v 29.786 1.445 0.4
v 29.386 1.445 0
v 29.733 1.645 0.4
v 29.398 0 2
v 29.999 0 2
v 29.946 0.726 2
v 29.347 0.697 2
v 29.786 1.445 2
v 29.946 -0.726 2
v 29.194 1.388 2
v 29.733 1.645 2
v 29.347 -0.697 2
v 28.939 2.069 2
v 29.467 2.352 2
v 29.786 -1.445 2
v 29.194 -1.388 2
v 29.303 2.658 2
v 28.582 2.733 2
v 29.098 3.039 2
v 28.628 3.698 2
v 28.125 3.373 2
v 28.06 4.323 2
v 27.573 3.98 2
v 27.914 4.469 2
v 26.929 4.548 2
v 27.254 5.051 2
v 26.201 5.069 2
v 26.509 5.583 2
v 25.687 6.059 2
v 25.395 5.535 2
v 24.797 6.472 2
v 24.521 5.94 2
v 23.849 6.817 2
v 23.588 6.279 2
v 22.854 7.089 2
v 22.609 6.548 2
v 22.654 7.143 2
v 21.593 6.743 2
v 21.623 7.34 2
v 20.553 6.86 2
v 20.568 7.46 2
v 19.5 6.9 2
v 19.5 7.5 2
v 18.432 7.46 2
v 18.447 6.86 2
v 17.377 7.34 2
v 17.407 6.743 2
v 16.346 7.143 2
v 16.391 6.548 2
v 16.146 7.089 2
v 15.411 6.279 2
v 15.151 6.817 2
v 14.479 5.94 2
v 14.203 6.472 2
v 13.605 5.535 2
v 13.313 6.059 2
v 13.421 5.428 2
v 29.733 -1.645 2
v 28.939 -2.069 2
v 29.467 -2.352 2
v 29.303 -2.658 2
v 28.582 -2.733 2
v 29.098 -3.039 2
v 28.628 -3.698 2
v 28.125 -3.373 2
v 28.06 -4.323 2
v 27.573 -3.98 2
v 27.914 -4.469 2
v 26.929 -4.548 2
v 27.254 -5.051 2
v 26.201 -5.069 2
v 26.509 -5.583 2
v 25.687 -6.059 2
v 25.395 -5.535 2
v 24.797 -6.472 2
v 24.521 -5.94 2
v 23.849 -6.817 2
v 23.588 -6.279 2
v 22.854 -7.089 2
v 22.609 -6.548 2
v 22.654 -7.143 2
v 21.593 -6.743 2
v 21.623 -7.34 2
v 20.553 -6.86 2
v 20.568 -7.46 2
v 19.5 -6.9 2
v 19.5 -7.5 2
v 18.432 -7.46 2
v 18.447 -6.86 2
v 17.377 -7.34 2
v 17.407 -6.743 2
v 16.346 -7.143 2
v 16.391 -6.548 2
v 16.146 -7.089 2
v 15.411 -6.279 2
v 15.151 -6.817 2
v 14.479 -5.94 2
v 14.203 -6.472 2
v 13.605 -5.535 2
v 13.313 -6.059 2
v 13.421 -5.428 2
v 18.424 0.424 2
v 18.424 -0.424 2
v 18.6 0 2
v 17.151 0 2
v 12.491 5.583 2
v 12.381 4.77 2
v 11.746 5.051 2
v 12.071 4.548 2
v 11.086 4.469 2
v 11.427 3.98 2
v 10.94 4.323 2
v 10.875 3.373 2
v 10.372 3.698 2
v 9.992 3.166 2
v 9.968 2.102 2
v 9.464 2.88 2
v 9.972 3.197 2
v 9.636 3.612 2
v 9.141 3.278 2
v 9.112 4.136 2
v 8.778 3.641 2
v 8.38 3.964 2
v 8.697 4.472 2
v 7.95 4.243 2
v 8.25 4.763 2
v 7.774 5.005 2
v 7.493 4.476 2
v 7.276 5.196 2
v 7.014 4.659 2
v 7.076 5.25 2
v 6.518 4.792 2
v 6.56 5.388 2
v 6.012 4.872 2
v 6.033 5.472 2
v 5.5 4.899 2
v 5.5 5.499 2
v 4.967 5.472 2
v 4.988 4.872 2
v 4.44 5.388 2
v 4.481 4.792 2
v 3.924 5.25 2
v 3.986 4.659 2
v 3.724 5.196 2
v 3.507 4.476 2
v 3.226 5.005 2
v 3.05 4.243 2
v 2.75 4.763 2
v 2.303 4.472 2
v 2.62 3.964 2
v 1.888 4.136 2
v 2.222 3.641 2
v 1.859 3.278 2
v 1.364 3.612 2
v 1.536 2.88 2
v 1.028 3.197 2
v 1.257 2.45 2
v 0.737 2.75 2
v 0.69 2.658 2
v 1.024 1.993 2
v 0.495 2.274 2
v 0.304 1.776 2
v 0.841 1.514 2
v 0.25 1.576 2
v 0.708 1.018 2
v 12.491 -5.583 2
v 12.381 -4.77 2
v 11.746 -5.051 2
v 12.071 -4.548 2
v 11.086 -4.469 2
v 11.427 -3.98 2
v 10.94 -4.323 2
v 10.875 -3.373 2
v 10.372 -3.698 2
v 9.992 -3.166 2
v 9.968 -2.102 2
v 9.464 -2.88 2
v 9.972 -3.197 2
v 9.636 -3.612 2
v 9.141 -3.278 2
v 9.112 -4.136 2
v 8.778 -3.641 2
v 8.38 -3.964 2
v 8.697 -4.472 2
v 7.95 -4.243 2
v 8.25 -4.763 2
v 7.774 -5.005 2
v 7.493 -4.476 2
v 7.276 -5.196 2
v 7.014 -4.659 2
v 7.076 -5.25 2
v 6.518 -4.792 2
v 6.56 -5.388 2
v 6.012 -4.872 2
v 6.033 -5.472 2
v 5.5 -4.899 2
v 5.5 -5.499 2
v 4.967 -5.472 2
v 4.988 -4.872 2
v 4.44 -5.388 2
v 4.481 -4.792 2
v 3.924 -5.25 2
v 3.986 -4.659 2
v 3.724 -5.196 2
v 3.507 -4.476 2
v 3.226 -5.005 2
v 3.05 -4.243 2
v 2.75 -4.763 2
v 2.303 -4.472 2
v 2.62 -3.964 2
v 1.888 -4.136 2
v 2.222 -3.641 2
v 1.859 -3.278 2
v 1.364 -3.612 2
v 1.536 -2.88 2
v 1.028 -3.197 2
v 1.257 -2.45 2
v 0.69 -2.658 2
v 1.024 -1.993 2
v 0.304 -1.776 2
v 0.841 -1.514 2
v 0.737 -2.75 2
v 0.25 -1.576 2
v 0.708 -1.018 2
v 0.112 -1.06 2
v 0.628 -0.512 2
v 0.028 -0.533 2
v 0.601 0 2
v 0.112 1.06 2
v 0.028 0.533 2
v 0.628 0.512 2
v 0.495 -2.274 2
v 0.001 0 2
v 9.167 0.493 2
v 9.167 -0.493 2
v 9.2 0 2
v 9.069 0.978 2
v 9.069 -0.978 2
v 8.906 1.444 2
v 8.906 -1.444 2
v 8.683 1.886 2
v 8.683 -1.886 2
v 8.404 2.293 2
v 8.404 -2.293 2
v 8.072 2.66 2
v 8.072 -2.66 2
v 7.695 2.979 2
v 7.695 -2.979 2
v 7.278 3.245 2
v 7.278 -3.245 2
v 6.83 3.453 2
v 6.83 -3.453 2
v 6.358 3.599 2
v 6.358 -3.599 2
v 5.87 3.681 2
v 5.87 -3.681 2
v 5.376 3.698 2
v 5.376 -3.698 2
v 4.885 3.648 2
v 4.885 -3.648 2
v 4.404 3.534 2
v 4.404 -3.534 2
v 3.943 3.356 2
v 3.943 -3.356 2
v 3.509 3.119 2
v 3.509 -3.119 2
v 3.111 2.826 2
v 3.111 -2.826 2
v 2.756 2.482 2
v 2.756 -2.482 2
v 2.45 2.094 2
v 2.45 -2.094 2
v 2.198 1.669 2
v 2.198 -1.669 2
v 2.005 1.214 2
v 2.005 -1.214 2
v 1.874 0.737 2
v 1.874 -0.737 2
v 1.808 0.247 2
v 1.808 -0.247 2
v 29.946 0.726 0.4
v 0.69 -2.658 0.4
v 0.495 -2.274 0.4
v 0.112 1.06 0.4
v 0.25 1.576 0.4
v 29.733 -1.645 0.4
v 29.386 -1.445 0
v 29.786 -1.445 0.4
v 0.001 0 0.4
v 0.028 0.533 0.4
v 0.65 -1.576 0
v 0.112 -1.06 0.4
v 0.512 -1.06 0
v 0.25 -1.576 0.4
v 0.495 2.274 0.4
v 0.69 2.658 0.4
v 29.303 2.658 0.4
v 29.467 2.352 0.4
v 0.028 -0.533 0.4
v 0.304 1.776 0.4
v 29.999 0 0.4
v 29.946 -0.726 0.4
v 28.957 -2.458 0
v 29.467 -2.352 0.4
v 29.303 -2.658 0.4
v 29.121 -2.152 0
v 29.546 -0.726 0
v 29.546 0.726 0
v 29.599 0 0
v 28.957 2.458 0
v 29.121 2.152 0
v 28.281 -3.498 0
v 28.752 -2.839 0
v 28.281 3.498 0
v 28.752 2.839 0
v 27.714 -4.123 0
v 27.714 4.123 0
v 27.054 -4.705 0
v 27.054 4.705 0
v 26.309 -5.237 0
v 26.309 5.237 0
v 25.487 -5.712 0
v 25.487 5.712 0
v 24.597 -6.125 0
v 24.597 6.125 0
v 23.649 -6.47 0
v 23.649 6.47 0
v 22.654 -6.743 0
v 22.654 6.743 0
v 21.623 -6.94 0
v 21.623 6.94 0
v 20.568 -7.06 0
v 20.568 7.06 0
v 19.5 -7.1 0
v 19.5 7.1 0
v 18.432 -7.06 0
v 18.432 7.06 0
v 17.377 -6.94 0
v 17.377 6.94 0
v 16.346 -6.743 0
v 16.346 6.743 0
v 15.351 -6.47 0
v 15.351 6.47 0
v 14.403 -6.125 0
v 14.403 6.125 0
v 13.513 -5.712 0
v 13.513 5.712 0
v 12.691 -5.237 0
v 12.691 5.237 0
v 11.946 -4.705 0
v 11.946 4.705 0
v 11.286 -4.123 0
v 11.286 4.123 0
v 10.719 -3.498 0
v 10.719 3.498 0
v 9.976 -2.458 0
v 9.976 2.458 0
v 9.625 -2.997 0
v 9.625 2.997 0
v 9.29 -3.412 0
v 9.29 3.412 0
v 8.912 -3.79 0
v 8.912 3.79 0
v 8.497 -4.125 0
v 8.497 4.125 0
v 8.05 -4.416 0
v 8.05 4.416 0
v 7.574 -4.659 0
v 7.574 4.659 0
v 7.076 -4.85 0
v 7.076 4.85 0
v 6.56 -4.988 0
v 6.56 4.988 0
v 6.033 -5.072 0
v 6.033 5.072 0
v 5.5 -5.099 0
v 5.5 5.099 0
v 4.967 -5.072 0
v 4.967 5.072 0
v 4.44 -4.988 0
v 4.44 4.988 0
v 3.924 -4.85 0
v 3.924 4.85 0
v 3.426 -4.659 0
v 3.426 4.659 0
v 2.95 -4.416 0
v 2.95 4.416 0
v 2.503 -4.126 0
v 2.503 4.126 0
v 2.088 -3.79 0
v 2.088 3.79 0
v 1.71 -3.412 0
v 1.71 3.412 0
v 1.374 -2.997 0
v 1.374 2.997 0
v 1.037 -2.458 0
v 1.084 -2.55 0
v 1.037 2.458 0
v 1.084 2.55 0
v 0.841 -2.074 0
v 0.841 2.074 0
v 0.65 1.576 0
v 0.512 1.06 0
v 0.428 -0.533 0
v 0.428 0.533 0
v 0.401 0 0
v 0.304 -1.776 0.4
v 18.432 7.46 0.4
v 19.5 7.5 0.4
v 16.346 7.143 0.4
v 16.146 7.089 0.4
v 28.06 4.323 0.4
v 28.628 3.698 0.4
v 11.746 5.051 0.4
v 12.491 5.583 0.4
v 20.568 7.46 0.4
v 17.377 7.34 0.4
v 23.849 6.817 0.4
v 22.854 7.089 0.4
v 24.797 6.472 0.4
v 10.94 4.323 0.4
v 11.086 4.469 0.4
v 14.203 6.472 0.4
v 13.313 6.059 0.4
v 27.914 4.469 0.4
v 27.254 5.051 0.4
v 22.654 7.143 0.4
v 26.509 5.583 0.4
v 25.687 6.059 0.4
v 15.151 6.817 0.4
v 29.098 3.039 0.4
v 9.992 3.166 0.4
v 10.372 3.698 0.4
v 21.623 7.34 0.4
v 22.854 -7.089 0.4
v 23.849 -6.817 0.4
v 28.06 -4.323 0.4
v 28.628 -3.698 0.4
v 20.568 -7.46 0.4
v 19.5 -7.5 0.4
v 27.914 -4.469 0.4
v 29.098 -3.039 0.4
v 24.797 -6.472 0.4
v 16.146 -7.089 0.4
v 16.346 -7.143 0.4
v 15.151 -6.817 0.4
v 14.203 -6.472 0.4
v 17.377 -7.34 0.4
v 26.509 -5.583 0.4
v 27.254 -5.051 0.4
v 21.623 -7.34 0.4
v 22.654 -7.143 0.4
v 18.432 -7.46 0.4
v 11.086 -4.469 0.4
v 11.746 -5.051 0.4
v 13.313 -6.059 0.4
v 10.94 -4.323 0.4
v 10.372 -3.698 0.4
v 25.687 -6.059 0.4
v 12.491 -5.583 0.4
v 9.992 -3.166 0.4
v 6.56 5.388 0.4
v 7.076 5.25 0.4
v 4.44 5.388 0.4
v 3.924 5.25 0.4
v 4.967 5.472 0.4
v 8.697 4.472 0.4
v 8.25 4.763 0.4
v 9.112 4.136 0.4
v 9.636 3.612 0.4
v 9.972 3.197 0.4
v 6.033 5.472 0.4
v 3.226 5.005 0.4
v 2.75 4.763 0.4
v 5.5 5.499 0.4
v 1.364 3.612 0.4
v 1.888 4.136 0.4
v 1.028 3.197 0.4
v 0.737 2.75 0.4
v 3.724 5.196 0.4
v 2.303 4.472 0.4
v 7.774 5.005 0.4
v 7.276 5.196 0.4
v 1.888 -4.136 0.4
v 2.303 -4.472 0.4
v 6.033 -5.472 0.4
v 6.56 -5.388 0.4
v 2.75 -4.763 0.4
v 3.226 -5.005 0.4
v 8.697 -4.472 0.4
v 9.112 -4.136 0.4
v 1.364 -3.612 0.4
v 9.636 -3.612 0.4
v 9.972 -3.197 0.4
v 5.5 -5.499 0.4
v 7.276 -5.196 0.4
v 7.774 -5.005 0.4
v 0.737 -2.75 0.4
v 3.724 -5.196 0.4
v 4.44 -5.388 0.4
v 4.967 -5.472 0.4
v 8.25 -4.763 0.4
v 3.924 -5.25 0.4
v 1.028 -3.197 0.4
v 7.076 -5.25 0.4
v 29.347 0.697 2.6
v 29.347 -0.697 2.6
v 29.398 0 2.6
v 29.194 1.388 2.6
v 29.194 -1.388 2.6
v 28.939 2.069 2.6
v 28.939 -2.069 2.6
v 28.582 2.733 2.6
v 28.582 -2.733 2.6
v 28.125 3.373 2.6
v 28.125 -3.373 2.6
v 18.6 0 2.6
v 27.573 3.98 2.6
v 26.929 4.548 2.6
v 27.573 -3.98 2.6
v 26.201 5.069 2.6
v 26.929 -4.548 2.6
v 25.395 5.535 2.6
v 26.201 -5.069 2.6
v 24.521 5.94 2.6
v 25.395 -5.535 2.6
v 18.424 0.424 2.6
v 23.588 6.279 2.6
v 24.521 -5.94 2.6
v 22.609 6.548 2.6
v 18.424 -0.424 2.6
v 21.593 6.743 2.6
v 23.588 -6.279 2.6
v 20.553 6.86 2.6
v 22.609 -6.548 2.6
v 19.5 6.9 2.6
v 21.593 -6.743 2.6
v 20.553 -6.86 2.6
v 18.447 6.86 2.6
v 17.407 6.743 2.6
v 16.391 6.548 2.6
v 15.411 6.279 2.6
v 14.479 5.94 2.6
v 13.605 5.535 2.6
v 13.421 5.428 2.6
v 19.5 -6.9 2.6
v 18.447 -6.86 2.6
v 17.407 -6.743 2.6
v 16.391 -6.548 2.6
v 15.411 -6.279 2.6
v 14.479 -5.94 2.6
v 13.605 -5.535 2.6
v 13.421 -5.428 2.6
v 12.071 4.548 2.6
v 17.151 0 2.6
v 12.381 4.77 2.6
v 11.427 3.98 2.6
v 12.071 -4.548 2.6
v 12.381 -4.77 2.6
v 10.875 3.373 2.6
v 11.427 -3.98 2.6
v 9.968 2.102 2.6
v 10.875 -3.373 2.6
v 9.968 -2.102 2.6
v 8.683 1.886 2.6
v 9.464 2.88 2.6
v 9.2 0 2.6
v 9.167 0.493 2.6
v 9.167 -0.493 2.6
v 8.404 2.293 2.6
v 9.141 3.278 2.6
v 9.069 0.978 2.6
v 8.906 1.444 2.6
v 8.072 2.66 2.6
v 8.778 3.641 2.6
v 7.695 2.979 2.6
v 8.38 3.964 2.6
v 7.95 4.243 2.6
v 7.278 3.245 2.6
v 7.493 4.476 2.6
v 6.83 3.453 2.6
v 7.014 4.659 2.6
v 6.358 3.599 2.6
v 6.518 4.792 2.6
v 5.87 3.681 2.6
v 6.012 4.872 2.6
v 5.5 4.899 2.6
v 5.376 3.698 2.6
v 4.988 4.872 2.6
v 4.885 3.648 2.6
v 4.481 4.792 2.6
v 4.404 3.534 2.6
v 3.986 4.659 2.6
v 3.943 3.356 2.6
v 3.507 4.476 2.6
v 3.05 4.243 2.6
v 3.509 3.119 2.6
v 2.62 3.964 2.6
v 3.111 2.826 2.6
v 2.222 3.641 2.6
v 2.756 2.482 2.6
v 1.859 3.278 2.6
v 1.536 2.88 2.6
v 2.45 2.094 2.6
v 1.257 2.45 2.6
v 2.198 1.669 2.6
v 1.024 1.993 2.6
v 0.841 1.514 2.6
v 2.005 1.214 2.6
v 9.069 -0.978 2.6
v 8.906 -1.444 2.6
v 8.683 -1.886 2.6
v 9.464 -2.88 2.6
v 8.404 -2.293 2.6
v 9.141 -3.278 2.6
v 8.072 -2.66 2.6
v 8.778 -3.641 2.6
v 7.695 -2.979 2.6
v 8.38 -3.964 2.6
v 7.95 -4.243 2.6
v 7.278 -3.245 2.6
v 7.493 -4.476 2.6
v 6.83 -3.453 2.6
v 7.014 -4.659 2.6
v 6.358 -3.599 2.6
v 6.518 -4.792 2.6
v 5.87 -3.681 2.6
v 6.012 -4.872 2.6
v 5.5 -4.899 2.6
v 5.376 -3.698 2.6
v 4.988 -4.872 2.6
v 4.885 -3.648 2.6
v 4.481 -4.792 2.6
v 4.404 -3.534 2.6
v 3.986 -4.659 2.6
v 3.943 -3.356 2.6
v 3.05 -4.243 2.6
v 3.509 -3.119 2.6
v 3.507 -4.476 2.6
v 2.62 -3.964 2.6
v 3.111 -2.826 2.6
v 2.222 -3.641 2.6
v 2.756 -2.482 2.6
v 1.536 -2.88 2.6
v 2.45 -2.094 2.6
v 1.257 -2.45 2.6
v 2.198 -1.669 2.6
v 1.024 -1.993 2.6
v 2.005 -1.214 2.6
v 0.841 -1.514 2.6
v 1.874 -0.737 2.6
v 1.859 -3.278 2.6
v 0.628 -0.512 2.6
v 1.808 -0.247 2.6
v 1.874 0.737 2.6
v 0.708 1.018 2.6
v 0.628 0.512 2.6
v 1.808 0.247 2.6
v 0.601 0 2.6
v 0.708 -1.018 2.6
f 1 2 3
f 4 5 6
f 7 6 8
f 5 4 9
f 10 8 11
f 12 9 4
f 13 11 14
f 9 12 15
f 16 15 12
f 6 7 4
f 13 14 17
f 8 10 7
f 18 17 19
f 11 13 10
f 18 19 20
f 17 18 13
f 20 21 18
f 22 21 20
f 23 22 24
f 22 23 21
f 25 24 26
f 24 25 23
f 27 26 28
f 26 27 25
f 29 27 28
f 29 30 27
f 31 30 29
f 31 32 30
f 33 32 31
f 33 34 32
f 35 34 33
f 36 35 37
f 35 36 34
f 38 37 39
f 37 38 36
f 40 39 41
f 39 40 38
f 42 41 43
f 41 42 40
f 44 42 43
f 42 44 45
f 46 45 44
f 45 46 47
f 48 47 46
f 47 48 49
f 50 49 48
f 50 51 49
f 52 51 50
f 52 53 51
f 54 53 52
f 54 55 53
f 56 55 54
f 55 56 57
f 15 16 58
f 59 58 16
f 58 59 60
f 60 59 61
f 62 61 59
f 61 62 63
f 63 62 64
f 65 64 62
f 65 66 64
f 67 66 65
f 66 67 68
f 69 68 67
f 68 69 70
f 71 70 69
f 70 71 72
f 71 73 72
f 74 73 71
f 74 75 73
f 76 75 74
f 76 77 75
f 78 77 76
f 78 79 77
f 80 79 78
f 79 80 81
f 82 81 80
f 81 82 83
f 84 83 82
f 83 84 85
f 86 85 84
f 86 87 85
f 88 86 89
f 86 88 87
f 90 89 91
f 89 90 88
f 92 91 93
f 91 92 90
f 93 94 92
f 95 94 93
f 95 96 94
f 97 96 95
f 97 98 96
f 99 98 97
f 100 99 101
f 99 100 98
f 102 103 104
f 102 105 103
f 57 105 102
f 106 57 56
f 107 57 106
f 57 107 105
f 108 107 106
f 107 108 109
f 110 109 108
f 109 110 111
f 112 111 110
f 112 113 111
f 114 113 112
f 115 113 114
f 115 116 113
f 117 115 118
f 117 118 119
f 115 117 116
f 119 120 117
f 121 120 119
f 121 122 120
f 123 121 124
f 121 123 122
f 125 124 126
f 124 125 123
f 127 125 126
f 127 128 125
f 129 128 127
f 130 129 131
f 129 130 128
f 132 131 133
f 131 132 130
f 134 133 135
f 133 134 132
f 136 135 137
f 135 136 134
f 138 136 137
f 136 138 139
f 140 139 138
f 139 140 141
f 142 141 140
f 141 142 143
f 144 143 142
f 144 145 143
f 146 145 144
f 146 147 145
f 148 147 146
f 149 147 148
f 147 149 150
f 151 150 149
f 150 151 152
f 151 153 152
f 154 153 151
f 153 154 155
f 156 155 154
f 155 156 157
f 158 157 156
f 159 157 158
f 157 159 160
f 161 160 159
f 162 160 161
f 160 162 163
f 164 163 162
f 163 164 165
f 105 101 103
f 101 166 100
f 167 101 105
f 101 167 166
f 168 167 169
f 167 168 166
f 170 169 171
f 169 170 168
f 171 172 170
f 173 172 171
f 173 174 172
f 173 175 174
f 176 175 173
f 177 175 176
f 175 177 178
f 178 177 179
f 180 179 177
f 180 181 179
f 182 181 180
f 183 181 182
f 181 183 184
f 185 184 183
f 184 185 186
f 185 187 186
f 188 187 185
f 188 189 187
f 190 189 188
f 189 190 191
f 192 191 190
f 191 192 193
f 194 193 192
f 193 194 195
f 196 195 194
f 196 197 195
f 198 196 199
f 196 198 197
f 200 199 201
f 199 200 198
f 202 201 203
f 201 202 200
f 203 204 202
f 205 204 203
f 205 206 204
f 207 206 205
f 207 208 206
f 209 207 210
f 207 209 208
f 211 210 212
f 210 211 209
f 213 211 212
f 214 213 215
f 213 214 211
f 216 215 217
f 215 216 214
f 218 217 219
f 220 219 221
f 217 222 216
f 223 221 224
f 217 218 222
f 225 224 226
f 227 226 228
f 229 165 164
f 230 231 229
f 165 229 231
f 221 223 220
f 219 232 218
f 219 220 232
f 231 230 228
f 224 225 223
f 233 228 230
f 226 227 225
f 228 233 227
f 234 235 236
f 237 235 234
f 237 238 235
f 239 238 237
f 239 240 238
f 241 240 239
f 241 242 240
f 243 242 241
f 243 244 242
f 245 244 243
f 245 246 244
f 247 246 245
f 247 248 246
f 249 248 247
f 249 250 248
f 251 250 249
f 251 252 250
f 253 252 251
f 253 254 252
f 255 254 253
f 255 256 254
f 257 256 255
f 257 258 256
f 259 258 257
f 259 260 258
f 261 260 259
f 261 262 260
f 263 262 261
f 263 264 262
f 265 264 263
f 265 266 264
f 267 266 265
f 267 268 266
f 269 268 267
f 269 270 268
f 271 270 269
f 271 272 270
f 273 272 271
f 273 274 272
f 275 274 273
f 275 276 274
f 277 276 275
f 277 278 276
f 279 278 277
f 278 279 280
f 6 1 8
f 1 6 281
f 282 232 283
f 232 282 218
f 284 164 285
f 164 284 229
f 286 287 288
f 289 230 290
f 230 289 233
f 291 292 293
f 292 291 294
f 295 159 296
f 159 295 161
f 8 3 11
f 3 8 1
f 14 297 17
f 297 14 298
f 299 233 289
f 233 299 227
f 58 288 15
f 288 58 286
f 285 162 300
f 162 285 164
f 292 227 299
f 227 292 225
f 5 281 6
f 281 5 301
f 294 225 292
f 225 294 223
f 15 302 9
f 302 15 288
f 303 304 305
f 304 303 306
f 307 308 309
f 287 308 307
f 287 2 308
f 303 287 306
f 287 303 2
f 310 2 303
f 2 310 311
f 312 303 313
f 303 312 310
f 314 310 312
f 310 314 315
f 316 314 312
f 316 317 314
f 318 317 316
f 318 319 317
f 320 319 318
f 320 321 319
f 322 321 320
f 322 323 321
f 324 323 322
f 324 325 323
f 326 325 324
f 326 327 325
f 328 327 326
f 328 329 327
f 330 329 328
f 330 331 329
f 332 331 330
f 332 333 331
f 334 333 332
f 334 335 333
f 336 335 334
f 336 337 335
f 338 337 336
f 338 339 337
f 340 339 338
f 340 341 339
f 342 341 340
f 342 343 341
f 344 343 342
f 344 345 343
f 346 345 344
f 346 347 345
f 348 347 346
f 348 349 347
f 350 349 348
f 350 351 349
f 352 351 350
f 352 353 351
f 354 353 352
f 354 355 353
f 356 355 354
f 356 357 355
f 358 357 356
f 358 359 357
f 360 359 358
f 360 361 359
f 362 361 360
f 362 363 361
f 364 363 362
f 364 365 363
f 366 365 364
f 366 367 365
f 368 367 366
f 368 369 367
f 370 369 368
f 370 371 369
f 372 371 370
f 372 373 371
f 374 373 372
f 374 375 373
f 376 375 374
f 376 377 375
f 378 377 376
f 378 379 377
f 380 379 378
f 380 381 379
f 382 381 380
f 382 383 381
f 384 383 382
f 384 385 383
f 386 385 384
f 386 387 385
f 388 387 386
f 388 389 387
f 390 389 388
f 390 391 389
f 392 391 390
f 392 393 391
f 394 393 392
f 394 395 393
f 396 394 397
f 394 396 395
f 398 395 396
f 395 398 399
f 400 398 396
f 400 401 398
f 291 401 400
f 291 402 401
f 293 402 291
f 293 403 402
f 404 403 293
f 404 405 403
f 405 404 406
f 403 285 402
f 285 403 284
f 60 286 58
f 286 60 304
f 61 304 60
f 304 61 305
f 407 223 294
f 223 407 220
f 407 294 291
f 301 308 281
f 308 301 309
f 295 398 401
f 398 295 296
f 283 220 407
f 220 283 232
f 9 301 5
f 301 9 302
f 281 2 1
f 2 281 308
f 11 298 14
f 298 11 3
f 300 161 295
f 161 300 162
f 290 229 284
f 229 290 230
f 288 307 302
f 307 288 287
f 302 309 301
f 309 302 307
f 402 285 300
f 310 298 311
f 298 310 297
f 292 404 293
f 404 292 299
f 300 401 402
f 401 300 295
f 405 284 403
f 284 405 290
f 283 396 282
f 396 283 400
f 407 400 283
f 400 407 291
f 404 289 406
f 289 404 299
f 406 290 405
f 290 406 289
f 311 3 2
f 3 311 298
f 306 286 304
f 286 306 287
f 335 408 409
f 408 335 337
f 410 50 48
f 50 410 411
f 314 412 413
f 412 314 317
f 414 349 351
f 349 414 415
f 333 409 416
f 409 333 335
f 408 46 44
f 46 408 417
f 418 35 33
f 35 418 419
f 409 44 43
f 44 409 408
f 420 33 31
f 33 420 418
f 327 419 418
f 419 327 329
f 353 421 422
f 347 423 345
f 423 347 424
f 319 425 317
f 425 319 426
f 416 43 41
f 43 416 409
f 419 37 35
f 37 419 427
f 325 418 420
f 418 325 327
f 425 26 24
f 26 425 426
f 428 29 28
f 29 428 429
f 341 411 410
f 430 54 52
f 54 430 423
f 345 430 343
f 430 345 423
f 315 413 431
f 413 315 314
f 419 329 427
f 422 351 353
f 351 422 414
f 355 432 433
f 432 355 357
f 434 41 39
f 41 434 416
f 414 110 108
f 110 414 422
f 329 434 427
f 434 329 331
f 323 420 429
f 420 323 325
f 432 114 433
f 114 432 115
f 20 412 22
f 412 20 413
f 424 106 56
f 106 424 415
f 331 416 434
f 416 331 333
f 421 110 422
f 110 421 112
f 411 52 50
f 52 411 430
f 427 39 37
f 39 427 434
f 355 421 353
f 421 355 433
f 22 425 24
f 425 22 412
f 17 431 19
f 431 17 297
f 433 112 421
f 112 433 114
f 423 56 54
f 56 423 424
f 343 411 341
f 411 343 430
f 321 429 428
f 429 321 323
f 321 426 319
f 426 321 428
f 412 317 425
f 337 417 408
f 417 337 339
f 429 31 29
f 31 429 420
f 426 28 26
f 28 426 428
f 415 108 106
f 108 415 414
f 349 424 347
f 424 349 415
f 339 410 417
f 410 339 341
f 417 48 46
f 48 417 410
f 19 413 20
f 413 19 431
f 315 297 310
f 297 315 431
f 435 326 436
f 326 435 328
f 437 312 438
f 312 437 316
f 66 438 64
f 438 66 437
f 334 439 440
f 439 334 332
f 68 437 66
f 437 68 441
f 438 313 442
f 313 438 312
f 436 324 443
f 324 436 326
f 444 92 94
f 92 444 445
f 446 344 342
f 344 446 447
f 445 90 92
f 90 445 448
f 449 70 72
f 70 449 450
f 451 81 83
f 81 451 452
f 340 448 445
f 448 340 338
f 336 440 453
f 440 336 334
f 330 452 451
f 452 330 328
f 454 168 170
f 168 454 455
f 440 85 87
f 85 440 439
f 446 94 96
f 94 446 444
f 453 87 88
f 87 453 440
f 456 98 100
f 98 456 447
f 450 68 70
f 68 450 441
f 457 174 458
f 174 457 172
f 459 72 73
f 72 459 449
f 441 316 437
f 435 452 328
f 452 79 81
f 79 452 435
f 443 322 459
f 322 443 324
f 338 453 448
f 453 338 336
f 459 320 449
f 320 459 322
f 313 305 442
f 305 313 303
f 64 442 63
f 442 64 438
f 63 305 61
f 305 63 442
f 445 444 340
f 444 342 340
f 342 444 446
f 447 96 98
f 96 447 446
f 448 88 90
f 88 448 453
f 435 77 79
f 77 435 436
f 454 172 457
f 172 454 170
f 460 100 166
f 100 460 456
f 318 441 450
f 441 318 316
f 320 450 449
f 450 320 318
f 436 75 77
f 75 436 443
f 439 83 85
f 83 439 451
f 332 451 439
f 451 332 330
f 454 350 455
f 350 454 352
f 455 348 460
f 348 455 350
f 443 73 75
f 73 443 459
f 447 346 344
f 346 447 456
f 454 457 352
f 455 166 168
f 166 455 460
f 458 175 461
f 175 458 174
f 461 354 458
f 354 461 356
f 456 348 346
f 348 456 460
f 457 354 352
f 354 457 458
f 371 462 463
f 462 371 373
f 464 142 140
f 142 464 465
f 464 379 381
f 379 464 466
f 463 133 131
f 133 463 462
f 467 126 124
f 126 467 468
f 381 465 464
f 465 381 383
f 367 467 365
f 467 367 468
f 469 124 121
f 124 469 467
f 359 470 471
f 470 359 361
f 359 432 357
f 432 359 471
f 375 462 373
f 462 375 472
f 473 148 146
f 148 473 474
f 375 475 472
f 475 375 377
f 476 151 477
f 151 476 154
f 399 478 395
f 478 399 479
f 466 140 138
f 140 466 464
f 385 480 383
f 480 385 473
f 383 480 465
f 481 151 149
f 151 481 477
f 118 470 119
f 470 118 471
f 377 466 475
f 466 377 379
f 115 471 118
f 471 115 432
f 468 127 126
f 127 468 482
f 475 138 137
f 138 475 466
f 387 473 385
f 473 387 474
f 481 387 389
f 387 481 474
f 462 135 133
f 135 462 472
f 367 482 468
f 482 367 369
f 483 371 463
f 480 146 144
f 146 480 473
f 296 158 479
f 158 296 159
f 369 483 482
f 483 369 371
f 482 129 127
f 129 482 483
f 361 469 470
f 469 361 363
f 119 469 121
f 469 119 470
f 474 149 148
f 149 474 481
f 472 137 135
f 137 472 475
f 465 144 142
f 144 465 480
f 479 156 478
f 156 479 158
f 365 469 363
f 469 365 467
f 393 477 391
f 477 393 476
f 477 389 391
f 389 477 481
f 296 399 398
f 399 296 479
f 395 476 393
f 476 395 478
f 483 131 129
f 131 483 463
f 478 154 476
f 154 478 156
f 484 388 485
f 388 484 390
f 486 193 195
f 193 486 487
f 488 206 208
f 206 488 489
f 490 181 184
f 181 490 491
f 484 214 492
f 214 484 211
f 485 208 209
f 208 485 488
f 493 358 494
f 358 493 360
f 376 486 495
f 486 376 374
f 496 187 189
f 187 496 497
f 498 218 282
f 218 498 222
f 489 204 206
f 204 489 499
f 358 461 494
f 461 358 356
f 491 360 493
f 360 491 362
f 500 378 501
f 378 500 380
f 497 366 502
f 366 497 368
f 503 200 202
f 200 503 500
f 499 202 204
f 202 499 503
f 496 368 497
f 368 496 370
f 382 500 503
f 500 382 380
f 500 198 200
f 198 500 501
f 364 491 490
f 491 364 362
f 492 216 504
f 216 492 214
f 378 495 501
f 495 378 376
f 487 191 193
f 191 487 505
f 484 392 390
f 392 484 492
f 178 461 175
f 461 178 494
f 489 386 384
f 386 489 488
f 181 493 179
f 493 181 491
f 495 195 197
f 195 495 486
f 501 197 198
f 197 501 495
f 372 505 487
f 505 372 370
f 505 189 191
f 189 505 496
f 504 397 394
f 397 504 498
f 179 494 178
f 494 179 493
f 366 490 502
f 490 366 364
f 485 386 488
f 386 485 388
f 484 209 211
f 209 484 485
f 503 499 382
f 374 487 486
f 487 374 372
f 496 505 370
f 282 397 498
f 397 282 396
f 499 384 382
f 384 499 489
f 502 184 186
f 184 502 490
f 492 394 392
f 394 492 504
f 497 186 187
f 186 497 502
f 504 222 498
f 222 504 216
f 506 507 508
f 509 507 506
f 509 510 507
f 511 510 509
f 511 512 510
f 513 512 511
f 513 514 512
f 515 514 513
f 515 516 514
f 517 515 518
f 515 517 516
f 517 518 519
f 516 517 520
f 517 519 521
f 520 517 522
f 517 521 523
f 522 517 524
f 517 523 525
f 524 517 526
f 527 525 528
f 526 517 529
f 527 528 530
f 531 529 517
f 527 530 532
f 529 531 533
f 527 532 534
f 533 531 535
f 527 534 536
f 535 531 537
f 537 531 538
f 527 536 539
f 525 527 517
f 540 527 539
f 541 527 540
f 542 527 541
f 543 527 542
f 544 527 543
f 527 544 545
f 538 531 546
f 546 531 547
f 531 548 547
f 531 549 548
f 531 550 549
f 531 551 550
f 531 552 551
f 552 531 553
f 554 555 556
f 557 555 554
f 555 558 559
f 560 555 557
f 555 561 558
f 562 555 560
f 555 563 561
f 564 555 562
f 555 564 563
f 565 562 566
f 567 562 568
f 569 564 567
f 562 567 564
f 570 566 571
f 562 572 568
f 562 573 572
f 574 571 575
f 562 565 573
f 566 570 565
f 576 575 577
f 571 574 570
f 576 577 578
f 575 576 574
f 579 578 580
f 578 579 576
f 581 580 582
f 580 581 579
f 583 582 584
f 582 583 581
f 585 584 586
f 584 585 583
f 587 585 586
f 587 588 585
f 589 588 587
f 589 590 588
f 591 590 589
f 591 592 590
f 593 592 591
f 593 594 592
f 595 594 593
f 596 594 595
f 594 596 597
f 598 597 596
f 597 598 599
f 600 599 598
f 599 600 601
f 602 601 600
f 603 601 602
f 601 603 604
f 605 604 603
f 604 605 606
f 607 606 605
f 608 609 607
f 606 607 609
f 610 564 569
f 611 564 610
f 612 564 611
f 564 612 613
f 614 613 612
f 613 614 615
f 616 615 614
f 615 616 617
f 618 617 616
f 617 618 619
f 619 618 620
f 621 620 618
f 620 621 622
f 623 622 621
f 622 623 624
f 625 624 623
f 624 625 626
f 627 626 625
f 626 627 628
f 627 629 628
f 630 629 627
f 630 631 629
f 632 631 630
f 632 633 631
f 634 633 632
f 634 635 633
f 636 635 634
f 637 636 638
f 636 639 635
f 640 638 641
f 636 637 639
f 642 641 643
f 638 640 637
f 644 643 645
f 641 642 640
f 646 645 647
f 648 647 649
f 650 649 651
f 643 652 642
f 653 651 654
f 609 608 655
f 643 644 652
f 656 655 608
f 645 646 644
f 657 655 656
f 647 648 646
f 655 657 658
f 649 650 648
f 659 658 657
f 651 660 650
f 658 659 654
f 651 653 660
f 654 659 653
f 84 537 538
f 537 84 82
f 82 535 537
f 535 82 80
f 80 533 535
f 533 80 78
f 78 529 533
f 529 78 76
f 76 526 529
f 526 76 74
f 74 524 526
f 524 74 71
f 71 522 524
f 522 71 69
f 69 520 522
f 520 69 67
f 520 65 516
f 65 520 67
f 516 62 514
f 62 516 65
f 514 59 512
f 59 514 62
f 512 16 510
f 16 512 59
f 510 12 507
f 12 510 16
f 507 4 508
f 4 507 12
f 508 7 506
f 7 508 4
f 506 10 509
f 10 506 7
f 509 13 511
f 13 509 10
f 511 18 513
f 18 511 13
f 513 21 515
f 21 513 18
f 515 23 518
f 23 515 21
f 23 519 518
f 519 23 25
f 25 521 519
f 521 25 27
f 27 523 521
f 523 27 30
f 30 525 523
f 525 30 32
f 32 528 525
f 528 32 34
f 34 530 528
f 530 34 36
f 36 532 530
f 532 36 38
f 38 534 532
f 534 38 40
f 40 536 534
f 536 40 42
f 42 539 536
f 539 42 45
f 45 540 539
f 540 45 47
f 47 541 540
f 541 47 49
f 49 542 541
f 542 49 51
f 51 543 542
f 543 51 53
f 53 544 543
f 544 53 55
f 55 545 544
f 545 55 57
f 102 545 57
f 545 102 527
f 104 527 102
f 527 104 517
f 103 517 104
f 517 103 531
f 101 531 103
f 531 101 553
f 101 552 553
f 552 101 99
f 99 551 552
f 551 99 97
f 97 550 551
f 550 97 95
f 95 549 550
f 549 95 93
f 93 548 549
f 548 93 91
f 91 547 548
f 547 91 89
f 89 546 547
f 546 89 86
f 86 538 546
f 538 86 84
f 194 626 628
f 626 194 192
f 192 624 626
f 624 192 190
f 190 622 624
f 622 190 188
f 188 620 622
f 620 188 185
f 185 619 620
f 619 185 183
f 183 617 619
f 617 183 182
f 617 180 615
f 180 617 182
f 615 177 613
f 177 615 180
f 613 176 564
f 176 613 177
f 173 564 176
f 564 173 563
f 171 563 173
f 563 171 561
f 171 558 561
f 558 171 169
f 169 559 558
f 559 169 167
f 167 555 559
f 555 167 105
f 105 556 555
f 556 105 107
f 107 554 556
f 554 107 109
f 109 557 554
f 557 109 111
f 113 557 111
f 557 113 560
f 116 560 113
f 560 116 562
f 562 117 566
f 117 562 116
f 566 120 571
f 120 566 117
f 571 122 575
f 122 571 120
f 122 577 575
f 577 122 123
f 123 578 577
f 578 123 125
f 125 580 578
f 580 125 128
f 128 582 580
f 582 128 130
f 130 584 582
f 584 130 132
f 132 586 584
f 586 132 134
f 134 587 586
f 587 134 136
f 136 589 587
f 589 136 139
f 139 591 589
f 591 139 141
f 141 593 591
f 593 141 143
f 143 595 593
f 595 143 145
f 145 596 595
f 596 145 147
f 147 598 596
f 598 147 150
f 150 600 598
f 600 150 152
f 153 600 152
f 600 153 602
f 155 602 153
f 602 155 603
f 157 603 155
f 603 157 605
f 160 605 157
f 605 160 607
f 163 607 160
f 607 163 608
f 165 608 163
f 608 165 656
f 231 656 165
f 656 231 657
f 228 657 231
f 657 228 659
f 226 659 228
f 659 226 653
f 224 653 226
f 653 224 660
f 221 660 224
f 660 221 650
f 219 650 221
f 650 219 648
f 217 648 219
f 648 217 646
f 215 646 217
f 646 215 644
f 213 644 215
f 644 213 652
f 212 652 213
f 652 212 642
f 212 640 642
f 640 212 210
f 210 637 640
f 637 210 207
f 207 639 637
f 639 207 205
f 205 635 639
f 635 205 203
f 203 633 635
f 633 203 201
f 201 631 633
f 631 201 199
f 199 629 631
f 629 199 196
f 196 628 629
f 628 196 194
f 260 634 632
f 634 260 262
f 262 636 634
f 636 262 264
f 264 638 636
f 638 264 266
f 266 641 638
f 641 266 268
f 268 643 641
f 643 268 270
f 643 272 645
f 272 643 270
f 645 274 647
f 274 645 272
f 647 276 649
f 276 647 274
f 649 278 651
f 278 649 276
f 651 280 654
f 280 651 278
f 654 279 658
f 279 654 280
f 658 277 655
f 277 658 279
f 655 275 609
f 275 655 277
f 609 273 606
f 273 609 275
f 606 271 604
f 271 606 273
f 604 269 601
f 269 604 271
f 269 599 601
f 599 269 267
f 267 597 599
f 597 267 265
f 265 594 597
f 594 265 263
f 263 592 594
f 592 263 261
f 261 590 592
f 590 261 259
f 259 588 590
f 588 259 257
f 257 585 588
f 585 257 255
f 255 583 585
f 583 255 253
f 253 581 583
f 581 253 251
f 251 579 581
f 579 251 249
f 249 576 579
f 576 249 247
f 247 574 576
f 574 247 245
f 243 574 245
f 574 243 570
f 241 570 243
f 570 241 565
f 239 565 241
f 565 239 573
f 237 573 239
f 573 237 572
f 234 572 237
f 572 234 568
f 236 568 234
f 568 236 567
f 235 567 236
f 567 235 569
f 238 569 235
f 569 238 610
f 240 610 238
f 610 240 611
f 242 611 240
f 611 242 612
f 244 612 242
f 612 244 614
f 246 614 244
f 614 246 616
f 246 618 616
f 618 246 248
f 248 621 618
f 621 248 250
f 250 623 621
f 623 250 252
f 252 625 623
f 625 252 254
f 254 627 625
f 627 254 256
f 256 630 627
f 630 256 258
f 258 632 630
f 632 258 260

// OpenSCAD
// neonate.scad - newborn patient, seen from above (design_brief.md 4.2). Swaddled baby
// 30 x 15 x 2.6: round head dia 11 and a wrapped oval body; base 2.0 with the wrap raised
// 0.6 in the same colour, inset 0.6 from the outline; the face stays at base level, and a
// V-shaped fold in the wrap opens toward the head. Single colour, prints flat, head at x = 0.
// Export: openscad -o neonate.stl neonate.scad
include <common.scad>

length     = 30;
width      = 15;
head_d     = 11;
face_d     = 7.4;               // at base level inside the head; wrap ring around it 1.2 wide
relief     = true;              // raised wrap
wrap_inset = 0.6;               // wrap edge inside the outline
fold       = true;              // fold lines in the wrap, at the pictogram minimum width
fold_w     = picto_min;         // 1.2
relief_colour = "#8c8c8c";      // preview only: same filament, raised

module neonate_2d() {
    translate([head_d / 2, 0]) circle(d = head_d);
    translate([length - (length - head_d + 2) / 2, 0]) scale([(length - head_d + 2) / width, 1]) circle(d = width);
}

module wrap_2d() difference() {
    offset(delta = -wrap_inset) neonate_2d();
    translate([head_d / 2, 0]) circle(d = face_d);
    if (fold) for (s = [-1, 1]) hull() {              // fold line from the shoulder to the chest
        translate([head_d + 1, s * (width / 2 - 1.5)]) circle(d = fold_w);
        translate([head_d + 7, 0]) circle(d = fold_w);
    }
}

module neonate() {
    band1() neonate_2d();
    if (relief) color(relief_colour) band_at(1, band2_z, band2_h) wrap_2d();
}

neonate();
